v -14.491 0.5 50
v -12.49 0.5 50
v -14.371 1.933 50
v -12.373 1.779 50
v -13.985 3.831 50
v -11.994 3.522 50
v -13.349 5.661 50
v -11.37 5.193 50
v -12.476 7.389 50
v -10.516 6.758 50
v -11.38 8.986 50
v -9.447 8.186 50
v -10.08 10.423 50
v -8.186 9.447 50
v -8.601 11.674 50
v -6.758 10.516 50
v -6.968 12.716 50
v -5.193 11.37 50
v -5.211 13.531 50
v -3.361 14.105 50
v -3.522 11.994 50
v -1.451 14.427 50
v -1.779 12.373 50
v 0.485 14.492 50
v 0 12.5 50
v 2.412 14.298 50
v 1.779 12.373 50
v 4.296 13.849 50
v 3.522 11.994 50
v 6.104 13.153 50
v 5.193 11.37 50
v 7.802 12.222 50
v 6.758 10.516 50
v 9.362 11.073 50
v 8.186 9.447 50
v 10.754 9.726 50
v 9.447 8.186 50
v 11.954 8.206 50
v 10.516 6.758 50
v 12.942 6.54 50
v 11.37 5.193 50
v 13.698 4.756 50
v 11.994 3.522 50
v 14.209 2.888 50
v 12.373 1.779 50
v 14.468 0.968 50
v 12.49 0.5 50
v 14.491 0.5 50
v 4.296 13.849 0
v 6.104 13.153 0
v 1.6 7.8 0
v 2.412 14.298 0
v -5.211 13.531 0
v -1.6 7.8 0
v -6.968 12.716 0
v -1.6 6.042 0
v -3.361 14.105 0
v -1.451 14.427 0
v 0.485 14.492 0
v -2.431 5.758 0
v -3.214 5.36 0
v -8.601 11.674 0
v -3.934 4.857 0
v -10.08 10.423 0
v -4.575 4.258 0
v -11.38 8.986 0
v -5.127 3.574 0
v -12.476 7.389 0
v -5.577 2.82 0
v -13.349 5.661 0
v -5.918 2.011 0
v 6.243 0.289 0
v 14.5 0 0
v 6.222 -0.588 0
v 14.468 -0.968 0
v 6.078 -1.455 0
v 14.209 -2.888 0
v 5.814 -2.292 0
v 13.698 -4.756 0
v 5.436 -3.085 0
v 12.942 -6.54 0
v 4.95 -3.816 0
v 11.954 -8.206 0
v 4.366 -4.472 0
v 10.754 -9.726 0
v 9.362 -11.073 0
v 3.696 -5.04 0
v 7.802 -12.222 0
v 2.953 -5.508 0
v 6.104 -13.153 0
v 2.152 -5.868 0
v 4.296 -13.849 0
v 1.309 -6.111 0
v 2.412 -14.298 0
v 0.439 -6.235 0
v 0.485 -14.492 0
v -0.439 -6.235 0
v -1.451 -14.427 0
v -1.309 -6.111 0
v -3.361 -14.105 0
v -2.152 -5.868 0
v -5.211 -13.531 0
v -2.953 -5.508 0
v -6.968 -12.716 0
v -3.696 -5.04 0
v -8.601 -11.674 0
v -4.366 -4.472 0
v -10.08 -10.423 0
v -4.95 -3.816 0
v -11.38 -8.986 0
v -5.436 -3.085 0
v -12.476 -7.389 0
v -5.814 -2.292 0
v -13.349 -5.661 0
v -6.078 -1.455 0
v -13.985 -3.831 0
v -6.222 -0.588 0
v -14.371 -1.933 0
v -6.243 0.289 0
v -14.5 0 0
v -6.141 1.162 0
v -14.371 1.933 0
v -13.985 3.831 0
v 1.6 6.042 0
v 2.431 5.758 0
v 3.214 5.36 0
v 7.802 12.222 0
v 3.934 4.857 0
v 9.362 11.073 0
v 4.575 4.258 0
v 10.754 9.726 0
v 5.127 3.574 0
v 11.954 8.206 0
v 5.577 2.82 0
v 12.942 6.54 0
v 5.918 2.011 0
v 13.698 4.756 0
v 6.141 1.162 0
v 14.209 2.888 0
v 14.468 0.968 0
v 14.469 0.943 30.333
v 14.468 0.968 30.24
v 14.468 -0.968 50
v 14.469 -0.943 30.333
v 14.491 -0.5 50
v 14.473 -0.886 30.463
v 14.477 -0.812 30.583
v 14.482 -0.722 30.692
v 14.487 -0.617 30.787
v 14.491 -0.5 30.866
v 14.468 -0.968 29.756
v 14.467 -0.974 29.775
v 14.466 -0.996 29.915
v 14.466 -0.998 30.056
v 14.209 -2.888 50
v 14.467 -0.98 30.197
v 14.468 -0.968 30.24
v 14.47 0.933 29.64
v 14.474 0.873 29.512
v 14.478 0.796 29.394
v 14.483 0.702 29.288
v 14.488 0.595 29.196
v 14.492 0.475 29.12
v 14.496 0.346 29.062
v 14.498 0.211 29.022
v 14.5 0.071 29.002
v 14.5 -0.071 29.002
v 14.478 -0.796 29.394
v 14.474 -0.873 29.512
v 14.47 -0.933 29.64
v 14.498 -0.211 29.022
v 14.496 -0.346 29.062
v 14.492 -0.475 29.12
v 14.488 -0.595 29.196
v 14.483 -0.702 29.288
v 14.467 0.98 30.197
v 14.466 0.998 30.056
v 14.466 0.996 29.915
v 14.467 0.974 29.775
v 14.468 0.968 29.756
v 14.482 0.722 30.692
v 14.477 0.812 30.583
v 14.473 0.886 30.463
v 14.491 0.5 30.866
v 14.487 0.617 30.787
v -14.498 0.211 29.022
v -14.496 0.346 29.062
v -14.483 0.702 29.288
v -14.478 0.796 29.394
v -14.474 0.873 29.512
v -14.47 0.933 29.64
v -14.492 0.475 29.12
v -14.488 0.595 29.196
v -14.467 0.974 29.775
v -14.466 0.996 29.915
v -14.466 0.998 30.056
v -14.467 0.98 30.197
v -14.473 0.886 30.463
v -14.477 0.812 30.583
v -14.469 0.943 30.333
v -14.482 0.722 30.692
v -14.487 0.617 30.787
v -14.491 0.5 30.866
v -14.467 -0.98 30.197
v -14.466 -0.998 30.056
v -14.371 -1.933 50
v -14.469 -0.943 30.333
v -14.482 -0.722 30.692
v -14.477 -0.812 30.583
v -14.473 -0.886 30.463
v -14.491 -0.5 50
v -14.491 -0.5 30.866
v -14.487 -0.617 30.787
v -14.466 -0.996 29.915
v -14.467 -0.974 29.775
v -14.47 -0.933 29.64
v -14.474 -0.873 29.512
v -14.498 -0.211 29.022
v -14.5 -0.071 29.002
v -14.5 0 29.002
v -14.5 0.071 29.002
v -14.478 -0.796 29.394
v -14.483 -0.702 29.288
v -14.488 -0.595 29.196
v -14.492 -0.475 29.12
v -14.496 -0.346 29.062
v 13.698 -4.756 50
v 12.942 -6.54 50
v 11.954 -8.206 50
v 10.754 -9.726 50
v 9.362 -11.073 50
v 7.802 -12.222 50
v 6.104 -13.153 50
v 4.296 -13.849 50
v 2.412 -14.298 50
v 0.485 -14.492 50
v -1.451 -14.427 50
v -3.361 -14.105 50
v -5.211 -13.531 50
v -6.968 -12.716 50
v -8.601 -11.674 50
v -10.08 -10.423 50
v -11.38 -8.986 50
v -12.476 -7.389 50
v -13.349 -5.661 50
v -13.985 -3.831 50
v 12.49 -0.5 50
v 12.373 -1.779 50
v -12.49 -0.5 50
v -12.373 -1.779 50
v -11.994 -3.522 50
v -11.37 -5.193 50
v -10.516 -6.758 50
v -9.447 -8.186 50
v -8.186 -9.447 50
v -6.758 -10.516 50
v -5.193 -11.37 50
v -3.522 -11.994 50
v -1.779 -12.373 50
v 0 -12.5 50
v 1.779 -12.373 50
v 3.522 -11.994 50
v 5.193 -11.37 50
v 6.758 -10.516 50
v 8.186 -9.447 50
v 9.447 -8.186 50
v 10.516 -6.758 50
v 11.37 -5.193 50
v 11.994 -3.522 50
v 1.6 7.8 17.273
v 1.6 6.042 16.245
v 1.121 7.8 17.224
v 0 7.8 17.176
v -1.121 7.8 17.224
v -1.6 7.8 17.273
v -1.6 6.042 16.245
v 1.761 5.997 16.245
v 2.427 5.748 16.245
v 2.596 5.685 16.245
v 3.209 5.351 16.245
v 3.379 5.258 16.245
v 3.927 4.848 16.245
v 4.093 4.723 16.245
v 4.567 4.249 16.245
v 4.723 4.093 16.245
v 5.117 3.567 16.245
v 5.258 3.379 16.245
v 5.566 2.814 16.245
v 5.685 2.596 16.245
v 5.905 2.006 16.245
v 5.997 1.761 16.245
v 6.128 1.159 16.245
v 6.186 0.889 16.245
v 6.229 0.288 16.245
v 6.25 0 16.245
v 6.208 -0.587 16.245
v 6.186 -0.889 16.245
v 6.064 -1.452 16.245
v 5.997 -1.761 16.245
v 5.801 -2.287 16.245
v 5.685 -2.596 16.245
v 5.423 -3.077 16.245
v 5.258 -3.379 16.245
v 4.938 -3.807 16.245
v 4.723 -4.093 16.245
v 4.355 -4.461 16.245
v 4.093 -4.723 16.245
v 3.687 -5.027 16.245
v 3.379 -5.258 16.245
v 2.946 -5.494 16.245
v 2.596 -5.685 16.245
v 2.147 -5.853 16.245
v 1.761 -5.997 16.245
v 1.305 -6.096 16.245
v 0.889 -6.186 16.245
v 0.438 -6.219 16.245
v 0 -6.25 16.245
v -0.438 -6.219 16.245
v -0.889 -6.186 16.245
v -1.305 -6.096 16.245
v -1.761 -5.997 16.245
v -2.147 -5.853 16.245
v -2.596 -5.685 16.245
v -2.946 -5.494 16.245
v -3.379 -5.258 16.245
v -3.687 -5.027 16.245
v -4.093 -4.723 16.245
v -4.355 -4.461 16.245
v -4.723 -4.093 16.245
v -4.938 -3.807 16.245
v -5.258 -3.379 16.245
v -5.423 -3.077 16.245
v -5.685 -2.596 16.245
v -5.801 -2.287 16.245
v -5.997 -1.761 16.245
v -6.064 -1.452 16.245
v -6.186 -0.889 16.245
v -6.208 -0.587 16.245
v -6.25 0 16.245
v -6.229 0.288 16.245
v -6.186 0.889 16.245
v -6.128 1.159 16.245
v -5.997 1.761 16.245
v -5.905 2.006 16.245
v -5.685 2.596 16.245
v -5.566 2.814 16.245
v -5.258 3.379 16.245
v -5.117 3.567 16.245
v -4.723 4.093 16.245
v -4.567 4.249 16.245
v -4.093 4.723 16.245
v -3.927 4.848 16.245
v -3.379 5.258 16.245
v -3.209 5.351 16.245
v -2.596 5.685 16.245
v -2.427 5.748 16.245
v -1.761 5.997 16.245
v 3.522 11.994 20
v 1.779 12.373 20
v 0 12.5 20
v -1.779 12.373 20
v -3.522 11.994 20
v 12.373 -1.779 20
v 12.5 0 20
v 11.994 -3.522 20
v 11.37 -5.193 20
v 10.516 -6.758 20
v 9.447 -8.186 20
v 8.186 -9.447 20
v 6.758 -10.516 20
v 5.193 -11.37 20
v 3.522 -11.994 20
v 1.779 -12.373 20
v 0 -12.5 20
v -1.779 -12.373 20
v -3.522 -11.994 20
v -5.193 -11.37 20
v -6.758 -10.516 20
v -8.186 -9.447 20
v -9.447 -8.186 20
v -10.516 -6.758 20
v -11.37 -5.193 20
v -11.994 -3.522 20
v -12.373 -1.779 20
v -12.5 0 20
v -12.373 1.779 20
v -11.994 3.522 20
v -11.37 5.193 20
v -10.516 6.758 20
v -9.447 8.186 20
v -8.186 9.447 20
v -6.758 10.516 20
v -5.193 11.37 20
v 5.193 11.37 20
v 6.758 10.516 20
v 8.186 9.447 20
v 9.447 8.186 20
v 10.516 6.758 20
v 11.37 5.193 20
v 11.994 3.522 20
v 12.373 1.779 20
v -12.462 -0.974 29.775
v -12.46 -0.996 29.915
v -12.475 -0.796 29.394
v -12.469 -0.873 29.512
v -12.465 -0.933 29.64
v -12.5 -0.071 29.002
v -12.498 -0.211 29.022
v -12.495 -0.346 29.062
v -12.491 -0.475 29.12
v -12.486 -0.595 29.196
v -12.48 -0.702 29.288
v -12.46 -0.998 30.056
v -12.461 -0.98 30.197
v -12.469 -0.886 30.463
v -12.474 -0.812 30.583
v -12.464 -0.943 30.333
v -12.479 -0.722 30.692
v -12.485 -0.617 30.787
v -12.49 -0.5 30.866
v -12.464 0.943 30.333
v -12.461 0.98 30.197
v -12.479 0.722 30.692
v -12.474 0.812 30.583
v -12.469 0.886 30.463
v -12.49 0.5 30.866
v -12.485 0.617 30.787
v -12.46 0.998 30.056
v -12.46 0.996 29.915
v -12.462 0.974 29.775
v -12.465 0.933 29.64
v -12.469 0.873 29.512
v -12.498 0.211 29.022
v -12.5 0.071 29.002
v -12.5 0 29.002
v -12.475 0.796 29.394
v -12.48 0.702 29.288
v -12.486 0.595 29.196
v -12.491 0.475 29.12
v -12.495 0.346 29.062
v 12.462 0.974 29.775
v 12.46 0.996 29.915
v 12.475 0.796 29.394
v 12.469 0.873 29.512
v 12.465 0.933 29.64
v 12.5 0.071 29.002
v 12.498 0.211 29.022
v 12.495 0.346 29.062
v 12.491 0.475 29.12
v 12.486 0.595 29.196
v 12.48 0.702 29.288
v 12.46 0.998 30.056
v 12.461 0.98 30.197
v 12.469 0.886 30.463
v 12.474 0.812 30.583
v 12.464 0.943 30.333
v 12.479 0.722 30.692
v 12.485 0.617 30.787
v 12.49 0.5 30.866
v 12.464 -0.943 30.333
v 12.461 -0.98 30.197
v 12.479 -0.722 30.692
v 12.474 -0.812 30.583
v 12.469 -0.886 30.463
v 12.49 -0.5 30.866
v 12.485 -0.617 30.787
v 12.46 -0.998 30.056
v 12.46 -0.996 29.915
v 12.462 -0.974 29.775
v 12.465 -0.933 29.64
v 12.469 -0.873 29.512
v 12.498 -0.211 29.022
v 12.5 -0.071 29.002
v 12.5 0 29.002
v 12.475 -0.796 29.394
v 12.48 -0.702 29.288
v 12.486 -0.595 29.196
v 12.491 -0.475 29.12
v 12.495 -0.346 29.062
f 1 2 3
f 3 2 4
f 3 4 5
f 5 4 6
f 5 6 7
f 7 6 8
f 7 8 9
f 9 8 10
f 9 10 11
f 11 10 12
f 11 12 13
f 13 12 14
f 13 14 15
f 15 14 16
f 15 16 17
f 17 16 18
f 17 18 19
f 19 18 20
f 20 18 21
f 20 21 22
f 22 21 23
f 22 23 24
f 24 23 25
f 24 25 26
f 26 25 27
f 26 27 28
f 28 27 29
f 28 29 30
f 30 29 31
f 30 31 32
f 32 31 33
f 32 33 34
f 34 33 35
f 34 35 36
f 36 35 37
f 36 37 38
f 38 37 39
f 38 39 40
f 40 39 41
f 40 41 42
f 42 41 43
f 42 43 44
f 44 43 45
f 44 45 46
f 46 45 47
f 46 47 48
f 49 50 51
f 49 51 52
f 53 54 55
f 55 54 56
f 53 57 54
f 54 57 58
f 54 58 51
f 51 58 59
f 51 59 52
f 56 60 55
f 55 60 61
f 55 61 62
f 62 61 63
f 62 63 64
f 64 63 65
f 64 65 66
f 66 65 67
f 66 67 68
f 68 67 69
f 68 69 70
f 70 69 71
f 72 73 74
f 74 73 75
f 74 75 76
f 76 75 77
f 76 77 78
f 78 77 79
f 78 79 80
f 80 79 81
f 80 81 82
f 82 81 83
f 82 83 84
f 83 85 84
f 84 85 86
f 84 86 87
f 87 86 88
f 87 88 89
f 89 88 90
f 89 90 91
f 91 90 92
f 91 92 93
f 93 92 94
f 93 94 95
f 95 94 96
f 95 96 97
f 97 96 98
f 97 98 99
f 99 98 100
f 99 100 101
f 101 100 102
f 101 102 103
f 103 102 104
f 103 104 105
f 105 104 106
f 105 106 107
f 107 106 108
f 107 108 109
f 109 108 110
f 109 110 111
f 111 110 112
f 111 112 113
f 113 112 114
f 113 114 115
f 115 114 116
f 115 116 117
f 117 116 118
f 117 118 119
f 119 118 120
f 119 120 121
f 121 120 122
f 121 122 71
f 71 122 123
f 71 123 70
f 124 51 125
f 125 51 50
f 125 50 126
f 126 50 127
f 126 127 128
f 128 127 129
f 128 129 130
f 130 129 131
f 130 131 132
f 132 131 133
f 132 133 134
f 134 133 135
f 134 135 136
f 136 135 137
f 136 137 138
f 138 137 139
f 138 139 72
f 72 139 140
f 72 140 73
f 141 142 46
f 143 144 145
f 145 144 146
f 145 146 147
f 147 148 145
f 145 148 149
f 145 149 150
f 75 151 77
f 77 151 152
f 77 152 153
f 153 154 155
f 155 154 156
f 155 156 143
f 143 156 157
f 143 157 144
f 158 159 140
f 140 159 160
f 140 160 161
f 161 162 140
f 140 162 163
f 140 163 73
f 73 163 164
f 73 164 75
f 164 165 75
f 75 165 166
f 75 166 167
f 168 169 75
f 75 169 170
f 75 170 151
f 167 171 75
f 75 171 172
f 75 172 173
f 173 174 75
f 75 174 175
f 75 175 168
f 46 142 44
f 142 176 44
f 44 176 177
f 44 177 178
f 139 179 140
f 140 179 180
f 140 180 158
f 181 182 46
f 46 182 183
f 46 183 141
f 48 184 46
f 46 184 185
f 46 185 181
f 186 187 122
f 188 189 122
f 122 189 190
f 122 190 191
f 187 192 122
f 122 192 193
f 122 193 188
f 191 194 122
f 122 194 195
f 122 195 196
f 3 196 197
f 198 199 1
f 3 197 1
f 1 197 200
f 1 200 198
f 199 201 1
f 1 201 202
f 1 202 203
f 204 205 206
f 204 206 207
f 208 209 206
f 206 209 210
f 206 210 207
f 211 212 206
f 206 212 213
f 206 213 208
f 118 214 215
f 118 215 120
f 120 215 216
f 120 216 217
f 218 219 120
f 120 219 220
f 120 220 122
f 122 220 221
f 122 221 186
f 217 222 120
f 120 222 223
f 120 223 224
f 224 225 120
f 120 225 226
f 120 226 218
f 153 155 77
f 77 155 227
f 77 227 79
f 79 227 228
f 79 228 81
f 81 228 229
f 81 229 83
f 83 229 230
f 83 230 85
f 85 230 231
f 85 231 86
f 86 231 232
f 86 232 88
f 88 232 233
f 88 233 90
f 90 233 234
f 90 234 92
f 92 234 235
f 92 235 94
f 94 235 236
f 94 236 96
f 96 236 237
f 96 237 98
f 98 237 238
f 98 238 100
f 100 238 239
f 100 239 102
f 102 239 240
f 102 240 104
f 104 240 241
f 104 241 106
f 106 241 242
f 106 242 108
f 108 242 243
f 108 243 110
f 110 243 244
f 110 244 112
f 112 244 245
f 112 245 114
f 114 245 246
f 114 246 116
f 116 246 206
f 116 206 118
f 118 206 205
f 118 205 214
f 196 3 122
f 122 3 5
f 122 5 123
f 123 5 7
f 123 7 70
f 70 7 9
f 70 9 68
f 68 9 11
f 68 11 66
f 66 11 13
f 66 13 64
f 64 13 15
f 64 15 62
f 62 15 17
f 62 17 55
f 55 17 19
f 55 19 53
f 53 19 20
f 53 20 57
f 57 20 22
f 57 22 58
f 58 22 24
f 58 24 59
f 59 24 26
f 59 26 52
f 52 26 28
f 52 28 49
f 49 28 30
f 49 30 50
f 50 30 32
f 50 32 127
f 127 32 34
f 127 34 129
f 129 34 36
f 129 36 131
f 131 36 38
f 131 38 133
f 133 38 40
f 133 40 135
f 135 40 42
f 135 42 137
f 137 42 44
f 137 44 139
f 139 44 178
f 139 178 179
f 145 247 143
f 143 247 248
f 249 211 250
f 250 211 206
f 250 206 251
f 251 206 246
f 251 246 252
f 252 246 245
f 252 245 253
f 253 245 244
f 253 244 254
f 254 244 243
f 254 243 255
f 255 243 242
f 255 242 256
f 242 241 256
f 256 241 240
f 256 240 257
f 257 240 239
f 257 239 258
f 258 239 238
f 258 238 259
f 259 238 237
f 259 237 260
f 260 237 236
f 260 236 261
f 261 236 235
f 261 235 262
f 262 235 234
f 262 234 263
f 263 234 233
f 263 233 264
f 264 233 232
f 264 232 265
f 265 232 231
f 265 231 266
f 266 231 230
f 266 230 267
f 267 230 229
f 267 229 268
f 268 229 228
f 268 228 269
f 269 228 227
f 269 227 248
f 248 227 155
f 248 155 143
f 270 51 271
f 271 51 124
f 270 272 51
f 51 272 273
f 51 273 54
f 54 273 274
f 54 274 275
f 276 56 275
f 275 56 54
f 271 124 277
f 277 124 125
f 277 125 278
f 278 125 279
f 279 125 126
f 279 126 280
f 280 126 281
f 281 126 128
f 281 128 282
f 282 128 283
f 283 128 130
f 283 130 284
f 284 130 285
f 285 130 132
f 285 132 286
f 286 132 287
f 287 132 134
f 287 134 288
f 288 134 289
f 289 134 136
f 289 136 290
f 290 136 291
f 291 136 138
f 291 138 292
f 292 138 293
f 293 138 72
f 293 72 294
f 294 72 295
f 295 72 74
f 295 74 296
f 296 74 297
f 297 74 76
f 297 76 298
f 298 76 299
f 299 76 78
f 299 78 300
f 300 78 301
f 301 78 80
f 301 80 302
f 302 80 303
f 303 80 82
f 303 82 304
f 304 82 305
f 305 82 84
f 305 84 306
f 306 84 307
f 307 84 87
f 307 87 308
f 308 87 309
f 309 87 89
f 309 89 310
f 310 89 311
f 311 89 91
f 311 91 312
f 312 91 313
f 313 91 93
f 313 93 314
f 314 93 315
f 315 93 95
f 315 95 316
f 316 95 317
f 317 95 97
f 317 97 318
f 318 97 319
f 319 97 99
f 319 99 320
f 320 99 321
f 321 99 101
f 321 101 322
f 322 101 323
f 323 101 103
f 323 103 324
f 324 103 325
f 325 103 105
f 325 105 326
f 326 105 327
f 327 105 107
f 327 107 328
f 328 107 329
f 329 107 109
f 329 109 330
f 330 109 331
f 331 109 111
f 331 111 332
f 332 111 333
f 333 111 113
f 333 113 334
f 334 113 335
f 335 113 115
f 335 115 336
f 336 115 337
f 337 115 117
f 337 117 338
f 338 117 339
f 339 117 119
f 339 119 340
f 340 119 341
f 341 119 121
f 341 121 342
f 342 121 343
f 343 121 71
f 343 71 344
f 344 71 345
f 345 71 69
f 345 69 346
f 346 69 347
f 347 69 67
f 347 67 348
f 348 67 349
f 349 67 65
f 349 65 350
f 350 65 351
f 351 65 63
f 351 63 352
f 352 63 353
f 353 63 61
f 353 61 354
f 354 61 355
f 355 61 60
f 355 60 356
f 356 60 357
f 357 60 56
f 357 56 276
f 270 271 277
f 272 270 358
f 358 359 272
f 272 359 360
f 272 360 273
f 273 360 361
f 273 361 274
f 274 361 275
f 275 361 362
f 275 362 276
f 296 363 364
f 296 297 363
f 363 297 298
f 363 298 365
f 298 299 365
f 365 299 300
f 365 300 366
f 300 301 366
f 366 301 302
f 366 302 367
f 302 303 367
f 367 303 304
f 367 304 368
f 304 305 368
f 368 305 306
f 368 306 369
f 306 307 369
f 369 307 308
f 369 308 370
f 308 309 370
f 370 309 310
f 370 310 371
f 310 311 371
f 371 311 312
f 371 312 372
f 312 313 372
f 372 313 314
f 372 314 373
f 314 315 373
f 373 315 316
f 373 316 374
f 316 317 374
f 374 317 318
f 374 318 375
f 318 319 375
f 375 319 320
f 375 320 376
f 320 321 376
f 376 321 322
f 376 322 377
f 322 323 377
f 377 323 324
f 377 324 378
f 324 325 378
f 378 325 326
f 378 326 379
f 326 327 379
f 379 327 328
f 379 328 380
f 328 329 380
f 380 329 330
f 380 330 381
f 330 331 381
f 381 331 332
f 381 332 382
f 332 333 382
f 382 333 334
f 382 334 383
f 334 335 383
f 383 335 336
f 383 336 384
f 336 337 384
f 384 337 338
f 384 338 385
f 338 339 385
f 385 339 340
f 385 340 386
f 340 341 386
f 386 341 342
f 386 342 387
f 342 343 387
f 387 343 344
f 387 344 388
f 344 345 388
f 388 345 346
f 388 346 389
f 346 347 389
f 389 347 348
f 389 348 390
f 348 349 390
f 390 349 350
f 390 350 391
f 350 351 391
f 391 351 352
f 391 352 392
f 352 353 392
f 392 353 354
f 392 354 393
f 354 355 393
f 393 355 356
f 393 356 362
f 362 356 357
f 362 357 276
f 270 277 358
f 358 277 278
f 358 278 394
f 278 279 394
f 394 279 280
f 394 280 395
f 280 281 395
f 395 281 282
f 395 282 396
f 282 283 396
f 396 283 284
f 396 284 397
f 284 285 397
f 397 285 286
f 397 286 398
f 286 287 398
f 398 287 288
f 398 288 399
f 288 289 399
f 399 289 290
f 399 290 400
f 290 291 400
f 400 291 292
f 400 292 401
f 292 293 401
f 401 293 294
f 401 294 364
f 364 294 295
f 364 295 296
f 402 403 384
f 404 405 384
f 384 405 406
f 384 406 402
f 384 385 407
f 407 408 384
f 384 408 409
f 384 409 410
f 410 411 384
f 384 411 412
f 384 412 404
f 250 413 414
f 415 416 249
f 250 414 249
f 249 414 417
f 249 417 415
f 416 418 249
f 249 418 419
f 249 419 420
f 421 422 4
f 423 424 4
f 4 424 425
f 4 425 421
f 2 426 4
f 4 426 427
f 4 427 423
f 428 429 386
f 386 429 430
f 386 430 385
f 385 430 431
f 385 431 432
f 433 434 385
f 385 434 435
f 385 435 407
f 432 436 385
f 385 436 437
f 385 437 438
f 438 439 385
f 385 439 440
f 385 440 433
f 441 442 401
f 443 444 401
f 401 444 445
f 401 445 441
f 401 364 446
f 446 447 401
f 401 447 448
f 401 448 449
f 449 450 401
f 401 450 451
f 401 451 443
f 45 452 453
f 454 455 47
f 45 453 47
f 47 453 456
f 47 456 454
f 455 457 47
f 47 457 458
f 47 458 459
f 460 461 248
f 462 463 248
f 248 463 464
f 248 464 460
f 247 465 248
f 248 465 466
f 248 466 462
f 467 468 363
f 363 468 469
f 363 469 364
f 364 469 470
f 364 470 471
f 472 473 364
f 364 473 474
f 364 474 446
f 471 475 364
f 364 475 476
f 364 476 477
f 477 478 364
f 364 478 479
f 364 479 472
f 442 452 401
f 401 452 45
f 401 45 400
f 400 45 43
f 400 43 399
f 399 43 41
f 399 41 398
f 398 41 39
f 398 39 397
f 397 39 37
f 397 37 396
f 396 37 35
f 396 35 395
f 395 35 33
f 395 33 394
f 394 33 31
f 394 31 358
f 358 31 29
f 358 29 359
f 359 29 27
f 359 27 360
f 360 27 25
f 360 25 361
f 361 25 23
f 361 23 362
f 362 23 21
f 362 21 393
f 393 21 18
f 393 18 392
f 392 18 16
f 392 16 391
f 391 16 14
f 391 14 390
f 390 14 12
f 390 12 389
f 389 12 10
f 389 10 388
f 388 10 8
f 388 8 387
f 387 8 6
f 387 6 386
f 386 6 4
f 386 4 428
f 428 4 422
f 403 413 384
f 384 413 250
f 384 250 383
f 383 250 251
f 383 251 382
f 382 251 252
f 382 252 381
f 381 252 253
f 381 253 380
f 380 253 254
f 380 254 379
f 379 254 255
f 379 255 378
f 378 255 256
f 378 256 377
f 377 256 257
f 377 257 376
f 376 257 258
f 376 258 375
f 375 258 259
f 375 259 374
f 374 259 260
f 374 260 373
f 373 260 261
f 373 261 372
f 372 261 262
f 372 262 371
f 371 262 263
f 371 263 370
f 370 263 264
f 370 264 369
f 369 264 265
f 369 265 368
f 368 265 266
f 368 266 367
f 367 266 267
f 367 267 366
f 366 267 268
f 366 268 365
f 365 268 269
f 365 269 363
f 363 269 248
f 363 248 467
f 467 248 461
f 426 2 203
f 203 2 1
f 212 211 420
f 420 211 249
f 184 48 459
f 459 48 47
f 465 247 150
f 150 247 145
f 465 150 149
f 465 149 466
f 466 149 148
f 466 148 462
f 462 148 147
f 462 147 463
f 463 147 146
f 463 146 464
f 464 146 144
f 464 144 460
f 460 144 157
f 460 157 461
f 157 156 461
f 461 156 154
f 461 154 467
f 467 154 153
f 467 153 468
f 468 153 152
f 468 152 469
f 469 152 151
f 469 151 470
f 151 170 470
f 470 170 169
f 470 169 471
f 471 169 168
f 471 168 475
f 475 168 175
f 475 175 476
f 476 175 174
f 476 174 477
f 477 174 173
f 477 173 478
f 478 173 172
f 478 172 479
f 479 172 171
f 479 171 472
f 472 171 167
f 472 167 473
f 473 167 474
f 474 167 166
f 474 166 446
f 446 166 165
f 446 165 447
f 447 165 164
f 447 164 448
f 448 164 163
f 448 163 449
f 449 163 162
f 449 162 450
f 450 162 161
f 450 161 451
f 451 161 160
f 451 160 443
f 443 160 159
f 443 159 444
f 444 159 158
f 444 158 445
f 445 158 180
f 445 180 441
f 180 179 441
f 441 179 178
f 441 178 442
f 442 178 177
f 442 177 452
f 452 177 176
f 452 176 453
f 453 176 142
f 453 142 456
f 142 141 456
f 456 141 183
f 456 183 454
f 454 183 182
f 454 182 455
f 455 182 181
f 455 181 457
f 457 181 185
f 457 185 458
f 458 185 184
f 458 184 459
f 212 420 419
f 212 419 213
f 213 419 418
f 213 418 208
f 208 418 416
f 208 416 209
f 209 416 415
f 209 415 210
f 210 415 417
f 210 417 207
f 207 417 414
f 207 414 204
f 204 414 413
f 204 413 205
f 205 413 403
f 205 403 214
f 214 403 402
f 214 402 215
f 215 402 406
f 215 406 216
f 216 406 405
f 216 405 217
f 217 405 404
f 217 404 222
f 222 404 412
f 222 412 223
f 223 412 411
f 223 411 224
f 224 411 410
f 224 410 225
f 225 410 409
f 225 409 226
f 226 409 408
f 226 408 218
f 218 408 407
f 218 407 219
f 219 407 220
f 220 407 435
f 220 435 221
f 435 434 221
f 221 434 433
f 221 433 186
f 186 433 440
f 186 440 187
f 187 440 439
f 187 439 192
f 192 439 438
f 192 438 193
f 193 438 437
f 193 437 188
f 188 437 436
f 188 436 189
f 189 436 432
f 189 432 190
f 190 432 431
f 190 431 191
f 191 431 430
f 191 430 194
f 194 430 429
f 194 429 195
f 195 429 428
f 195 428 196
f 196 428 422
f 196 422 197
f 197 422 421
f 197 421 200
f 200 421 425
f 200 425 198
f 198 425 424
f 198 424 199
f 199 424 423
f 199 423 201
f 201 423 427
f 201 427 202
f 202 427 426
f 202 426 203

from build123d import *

# Parameters (mm, degrees)
SKIZZE1_R                              = 14.5
AUFSATZ_LINEAR_AUSTRAGEN1_DEPTH        = 50
SKIZZE5_W                              = 3.2
SKIZZE5_H                              = 2
SCHNITT_LINEAR_AUSTRAGEN1_DEPTH        = 25
F_24_5_24_5_DURCHMESSER_BOHRUNG1_D     = 12.5
F_24_5_24_5_DURCHMESSER_BOHRUNG2_D     = 25
F_24_5_24_5_DURCHMESSER_BOHRUNG2_DEPTH = 30
F_24_5_24_5_DURCHMESSER_BOHRUNG2_TIP   = 7.510757738
SCHNITT_LINEAR_AUSTRAGEN2_DEPTH        = 20
F_2_0_2_DURCHMESSER_BOHRUNG11_D        = 2
F_2_0_2_DURCHMESSER_BOHRUNG11_DEPTH    = 30
F_2_0_2_DURCHMESSER_BOHRUNG11_TIP      = 0.600860619


with BuildPart() as part:
    # Skizze1 → Aufsatz-Linear austragen1 (new body)
    with BuildSketch(Plane.XY):
        Circle(SKIZZE1_R)
    extrude(amount=AUFSATZ_LINEAR_AUSTRAGEN1_DEPTH)

    # Skizze5 → Schnitt-Linear austragen1 (cut)
    with BuildSketch(Plane(origin=(0, 0, 0), x_dir=(-1, 0, 0), z_dir=(0, 0, -1))):
        with Locations((0, 6.8)):
            Rectangle(SKIZZE5_W, SKIZZE5_H)
    extrude(amount=-SCHNITT_LINEAR_AUSTRAGEN1_DEPTH, mode=Mode.SUBTRACT)

    # Ø24.5 (24.5) Durchmesser Bohrung1 (through all)
    with Locations(Plane(origin=(0, 0, 0), x_dir=(-1, 0, 0), z_dir=(0, 0, -1))):
        with Locations((0, 0)):
            Hole(F_24_5_24_5_DURCHMESSER_BOHRUNG1_D / 2)

    # Ø24.5 (24.5) Durchmesser Bohrung2
    with Locations(Plane.XY.offset(50)):
        with Locations((0, 0)):
            Hole(F_24_5_24_5_DURCHMESSER_BOHRUNG2_D / 2, depth=F_24_5_24_5_DURCHMESSER_BOHRUNG2_DEPTH)
            with Locations((0, 0, -(F_24_5_24_5_DURCHMESSER_BOHRUNG2_DEPTH + F_24_5_24_5_DURCHMESSER_BOHRUNG2_TIP / 2))):  # 118° drill point
                Cone(0, F_24_5_24_5_DURCHMESSER_BOHRUNG2_D / 2, F_24_5_24_5_DURCHMESSER_BOHRUNG2_TIP, mode=Mode.SUBTRACT)

    # Skizze12 → Schnitt-Linear austragen2 (cut)
    with BuildSketch(Plane.XY.offset(50)):
        with BuildLine():
            Line((-14.491376746, 0.5), (-12.489995997, 0.5))
            ThreePointArc((-12.489995997, 0.5), (-12.5, 0), (-12.489995997, -0.5))
            Line((-12.489995997, -0.5), (-14.491376746, -0.5))
            ThreePointArc((-14.491376746, -0.5), (-14.5, 0), (-14.491376746, 0.5))
        make_face()
        with BuildLine():
            Line((12.489995997, 0.5), (14.491376746, 0.5))
            ThreePointArc((14.491376746, 0.5), (14.5, 0), (14.491376746, -0.5))
            Line((14.491376746, -0.5), (12.489995997, -0.5))
            ThreePointArc((12.489995997, -0.5), (12.5, 0), (12.489995997, 0.5))
        make_face()
    extrude(amount=-SCHNITT_LINEAR_AUSTRAGEN2_DEPTH, mode=Mode.SUBTRACT)

    # Ø2.0 (2) Durchmesser Bohrung11
    with Locations(Plane(origin=(-14.5, 0, 30), x_dir=(0, 0, 1), z_dir=(-1, 0, 0))):
        with Locations((0, 0)):
            Hole(F_2_0_2_DURCHMESSER_BOHRUNG11_D / 2, depth=F_2_0_2_DURCHMESSER_BOHRUNG11_DEPTH)
            with Locations((0, 0, -(F_2_0_2_DURCHMESSER_BOHRUNG11_DEPTH + F_2_0_2_DURCHMESSER_BOHRUNG11_TIP / 2))):  # 118° drill point
                Cone(0, F_2_0_2_DURCHMESSER_BOHRUNG11_D / 2, F_2_0_2_DURCHMESSER_BOHRUNG11_TIP, mode=Mode.SUBTRACT)


solid = part.part
